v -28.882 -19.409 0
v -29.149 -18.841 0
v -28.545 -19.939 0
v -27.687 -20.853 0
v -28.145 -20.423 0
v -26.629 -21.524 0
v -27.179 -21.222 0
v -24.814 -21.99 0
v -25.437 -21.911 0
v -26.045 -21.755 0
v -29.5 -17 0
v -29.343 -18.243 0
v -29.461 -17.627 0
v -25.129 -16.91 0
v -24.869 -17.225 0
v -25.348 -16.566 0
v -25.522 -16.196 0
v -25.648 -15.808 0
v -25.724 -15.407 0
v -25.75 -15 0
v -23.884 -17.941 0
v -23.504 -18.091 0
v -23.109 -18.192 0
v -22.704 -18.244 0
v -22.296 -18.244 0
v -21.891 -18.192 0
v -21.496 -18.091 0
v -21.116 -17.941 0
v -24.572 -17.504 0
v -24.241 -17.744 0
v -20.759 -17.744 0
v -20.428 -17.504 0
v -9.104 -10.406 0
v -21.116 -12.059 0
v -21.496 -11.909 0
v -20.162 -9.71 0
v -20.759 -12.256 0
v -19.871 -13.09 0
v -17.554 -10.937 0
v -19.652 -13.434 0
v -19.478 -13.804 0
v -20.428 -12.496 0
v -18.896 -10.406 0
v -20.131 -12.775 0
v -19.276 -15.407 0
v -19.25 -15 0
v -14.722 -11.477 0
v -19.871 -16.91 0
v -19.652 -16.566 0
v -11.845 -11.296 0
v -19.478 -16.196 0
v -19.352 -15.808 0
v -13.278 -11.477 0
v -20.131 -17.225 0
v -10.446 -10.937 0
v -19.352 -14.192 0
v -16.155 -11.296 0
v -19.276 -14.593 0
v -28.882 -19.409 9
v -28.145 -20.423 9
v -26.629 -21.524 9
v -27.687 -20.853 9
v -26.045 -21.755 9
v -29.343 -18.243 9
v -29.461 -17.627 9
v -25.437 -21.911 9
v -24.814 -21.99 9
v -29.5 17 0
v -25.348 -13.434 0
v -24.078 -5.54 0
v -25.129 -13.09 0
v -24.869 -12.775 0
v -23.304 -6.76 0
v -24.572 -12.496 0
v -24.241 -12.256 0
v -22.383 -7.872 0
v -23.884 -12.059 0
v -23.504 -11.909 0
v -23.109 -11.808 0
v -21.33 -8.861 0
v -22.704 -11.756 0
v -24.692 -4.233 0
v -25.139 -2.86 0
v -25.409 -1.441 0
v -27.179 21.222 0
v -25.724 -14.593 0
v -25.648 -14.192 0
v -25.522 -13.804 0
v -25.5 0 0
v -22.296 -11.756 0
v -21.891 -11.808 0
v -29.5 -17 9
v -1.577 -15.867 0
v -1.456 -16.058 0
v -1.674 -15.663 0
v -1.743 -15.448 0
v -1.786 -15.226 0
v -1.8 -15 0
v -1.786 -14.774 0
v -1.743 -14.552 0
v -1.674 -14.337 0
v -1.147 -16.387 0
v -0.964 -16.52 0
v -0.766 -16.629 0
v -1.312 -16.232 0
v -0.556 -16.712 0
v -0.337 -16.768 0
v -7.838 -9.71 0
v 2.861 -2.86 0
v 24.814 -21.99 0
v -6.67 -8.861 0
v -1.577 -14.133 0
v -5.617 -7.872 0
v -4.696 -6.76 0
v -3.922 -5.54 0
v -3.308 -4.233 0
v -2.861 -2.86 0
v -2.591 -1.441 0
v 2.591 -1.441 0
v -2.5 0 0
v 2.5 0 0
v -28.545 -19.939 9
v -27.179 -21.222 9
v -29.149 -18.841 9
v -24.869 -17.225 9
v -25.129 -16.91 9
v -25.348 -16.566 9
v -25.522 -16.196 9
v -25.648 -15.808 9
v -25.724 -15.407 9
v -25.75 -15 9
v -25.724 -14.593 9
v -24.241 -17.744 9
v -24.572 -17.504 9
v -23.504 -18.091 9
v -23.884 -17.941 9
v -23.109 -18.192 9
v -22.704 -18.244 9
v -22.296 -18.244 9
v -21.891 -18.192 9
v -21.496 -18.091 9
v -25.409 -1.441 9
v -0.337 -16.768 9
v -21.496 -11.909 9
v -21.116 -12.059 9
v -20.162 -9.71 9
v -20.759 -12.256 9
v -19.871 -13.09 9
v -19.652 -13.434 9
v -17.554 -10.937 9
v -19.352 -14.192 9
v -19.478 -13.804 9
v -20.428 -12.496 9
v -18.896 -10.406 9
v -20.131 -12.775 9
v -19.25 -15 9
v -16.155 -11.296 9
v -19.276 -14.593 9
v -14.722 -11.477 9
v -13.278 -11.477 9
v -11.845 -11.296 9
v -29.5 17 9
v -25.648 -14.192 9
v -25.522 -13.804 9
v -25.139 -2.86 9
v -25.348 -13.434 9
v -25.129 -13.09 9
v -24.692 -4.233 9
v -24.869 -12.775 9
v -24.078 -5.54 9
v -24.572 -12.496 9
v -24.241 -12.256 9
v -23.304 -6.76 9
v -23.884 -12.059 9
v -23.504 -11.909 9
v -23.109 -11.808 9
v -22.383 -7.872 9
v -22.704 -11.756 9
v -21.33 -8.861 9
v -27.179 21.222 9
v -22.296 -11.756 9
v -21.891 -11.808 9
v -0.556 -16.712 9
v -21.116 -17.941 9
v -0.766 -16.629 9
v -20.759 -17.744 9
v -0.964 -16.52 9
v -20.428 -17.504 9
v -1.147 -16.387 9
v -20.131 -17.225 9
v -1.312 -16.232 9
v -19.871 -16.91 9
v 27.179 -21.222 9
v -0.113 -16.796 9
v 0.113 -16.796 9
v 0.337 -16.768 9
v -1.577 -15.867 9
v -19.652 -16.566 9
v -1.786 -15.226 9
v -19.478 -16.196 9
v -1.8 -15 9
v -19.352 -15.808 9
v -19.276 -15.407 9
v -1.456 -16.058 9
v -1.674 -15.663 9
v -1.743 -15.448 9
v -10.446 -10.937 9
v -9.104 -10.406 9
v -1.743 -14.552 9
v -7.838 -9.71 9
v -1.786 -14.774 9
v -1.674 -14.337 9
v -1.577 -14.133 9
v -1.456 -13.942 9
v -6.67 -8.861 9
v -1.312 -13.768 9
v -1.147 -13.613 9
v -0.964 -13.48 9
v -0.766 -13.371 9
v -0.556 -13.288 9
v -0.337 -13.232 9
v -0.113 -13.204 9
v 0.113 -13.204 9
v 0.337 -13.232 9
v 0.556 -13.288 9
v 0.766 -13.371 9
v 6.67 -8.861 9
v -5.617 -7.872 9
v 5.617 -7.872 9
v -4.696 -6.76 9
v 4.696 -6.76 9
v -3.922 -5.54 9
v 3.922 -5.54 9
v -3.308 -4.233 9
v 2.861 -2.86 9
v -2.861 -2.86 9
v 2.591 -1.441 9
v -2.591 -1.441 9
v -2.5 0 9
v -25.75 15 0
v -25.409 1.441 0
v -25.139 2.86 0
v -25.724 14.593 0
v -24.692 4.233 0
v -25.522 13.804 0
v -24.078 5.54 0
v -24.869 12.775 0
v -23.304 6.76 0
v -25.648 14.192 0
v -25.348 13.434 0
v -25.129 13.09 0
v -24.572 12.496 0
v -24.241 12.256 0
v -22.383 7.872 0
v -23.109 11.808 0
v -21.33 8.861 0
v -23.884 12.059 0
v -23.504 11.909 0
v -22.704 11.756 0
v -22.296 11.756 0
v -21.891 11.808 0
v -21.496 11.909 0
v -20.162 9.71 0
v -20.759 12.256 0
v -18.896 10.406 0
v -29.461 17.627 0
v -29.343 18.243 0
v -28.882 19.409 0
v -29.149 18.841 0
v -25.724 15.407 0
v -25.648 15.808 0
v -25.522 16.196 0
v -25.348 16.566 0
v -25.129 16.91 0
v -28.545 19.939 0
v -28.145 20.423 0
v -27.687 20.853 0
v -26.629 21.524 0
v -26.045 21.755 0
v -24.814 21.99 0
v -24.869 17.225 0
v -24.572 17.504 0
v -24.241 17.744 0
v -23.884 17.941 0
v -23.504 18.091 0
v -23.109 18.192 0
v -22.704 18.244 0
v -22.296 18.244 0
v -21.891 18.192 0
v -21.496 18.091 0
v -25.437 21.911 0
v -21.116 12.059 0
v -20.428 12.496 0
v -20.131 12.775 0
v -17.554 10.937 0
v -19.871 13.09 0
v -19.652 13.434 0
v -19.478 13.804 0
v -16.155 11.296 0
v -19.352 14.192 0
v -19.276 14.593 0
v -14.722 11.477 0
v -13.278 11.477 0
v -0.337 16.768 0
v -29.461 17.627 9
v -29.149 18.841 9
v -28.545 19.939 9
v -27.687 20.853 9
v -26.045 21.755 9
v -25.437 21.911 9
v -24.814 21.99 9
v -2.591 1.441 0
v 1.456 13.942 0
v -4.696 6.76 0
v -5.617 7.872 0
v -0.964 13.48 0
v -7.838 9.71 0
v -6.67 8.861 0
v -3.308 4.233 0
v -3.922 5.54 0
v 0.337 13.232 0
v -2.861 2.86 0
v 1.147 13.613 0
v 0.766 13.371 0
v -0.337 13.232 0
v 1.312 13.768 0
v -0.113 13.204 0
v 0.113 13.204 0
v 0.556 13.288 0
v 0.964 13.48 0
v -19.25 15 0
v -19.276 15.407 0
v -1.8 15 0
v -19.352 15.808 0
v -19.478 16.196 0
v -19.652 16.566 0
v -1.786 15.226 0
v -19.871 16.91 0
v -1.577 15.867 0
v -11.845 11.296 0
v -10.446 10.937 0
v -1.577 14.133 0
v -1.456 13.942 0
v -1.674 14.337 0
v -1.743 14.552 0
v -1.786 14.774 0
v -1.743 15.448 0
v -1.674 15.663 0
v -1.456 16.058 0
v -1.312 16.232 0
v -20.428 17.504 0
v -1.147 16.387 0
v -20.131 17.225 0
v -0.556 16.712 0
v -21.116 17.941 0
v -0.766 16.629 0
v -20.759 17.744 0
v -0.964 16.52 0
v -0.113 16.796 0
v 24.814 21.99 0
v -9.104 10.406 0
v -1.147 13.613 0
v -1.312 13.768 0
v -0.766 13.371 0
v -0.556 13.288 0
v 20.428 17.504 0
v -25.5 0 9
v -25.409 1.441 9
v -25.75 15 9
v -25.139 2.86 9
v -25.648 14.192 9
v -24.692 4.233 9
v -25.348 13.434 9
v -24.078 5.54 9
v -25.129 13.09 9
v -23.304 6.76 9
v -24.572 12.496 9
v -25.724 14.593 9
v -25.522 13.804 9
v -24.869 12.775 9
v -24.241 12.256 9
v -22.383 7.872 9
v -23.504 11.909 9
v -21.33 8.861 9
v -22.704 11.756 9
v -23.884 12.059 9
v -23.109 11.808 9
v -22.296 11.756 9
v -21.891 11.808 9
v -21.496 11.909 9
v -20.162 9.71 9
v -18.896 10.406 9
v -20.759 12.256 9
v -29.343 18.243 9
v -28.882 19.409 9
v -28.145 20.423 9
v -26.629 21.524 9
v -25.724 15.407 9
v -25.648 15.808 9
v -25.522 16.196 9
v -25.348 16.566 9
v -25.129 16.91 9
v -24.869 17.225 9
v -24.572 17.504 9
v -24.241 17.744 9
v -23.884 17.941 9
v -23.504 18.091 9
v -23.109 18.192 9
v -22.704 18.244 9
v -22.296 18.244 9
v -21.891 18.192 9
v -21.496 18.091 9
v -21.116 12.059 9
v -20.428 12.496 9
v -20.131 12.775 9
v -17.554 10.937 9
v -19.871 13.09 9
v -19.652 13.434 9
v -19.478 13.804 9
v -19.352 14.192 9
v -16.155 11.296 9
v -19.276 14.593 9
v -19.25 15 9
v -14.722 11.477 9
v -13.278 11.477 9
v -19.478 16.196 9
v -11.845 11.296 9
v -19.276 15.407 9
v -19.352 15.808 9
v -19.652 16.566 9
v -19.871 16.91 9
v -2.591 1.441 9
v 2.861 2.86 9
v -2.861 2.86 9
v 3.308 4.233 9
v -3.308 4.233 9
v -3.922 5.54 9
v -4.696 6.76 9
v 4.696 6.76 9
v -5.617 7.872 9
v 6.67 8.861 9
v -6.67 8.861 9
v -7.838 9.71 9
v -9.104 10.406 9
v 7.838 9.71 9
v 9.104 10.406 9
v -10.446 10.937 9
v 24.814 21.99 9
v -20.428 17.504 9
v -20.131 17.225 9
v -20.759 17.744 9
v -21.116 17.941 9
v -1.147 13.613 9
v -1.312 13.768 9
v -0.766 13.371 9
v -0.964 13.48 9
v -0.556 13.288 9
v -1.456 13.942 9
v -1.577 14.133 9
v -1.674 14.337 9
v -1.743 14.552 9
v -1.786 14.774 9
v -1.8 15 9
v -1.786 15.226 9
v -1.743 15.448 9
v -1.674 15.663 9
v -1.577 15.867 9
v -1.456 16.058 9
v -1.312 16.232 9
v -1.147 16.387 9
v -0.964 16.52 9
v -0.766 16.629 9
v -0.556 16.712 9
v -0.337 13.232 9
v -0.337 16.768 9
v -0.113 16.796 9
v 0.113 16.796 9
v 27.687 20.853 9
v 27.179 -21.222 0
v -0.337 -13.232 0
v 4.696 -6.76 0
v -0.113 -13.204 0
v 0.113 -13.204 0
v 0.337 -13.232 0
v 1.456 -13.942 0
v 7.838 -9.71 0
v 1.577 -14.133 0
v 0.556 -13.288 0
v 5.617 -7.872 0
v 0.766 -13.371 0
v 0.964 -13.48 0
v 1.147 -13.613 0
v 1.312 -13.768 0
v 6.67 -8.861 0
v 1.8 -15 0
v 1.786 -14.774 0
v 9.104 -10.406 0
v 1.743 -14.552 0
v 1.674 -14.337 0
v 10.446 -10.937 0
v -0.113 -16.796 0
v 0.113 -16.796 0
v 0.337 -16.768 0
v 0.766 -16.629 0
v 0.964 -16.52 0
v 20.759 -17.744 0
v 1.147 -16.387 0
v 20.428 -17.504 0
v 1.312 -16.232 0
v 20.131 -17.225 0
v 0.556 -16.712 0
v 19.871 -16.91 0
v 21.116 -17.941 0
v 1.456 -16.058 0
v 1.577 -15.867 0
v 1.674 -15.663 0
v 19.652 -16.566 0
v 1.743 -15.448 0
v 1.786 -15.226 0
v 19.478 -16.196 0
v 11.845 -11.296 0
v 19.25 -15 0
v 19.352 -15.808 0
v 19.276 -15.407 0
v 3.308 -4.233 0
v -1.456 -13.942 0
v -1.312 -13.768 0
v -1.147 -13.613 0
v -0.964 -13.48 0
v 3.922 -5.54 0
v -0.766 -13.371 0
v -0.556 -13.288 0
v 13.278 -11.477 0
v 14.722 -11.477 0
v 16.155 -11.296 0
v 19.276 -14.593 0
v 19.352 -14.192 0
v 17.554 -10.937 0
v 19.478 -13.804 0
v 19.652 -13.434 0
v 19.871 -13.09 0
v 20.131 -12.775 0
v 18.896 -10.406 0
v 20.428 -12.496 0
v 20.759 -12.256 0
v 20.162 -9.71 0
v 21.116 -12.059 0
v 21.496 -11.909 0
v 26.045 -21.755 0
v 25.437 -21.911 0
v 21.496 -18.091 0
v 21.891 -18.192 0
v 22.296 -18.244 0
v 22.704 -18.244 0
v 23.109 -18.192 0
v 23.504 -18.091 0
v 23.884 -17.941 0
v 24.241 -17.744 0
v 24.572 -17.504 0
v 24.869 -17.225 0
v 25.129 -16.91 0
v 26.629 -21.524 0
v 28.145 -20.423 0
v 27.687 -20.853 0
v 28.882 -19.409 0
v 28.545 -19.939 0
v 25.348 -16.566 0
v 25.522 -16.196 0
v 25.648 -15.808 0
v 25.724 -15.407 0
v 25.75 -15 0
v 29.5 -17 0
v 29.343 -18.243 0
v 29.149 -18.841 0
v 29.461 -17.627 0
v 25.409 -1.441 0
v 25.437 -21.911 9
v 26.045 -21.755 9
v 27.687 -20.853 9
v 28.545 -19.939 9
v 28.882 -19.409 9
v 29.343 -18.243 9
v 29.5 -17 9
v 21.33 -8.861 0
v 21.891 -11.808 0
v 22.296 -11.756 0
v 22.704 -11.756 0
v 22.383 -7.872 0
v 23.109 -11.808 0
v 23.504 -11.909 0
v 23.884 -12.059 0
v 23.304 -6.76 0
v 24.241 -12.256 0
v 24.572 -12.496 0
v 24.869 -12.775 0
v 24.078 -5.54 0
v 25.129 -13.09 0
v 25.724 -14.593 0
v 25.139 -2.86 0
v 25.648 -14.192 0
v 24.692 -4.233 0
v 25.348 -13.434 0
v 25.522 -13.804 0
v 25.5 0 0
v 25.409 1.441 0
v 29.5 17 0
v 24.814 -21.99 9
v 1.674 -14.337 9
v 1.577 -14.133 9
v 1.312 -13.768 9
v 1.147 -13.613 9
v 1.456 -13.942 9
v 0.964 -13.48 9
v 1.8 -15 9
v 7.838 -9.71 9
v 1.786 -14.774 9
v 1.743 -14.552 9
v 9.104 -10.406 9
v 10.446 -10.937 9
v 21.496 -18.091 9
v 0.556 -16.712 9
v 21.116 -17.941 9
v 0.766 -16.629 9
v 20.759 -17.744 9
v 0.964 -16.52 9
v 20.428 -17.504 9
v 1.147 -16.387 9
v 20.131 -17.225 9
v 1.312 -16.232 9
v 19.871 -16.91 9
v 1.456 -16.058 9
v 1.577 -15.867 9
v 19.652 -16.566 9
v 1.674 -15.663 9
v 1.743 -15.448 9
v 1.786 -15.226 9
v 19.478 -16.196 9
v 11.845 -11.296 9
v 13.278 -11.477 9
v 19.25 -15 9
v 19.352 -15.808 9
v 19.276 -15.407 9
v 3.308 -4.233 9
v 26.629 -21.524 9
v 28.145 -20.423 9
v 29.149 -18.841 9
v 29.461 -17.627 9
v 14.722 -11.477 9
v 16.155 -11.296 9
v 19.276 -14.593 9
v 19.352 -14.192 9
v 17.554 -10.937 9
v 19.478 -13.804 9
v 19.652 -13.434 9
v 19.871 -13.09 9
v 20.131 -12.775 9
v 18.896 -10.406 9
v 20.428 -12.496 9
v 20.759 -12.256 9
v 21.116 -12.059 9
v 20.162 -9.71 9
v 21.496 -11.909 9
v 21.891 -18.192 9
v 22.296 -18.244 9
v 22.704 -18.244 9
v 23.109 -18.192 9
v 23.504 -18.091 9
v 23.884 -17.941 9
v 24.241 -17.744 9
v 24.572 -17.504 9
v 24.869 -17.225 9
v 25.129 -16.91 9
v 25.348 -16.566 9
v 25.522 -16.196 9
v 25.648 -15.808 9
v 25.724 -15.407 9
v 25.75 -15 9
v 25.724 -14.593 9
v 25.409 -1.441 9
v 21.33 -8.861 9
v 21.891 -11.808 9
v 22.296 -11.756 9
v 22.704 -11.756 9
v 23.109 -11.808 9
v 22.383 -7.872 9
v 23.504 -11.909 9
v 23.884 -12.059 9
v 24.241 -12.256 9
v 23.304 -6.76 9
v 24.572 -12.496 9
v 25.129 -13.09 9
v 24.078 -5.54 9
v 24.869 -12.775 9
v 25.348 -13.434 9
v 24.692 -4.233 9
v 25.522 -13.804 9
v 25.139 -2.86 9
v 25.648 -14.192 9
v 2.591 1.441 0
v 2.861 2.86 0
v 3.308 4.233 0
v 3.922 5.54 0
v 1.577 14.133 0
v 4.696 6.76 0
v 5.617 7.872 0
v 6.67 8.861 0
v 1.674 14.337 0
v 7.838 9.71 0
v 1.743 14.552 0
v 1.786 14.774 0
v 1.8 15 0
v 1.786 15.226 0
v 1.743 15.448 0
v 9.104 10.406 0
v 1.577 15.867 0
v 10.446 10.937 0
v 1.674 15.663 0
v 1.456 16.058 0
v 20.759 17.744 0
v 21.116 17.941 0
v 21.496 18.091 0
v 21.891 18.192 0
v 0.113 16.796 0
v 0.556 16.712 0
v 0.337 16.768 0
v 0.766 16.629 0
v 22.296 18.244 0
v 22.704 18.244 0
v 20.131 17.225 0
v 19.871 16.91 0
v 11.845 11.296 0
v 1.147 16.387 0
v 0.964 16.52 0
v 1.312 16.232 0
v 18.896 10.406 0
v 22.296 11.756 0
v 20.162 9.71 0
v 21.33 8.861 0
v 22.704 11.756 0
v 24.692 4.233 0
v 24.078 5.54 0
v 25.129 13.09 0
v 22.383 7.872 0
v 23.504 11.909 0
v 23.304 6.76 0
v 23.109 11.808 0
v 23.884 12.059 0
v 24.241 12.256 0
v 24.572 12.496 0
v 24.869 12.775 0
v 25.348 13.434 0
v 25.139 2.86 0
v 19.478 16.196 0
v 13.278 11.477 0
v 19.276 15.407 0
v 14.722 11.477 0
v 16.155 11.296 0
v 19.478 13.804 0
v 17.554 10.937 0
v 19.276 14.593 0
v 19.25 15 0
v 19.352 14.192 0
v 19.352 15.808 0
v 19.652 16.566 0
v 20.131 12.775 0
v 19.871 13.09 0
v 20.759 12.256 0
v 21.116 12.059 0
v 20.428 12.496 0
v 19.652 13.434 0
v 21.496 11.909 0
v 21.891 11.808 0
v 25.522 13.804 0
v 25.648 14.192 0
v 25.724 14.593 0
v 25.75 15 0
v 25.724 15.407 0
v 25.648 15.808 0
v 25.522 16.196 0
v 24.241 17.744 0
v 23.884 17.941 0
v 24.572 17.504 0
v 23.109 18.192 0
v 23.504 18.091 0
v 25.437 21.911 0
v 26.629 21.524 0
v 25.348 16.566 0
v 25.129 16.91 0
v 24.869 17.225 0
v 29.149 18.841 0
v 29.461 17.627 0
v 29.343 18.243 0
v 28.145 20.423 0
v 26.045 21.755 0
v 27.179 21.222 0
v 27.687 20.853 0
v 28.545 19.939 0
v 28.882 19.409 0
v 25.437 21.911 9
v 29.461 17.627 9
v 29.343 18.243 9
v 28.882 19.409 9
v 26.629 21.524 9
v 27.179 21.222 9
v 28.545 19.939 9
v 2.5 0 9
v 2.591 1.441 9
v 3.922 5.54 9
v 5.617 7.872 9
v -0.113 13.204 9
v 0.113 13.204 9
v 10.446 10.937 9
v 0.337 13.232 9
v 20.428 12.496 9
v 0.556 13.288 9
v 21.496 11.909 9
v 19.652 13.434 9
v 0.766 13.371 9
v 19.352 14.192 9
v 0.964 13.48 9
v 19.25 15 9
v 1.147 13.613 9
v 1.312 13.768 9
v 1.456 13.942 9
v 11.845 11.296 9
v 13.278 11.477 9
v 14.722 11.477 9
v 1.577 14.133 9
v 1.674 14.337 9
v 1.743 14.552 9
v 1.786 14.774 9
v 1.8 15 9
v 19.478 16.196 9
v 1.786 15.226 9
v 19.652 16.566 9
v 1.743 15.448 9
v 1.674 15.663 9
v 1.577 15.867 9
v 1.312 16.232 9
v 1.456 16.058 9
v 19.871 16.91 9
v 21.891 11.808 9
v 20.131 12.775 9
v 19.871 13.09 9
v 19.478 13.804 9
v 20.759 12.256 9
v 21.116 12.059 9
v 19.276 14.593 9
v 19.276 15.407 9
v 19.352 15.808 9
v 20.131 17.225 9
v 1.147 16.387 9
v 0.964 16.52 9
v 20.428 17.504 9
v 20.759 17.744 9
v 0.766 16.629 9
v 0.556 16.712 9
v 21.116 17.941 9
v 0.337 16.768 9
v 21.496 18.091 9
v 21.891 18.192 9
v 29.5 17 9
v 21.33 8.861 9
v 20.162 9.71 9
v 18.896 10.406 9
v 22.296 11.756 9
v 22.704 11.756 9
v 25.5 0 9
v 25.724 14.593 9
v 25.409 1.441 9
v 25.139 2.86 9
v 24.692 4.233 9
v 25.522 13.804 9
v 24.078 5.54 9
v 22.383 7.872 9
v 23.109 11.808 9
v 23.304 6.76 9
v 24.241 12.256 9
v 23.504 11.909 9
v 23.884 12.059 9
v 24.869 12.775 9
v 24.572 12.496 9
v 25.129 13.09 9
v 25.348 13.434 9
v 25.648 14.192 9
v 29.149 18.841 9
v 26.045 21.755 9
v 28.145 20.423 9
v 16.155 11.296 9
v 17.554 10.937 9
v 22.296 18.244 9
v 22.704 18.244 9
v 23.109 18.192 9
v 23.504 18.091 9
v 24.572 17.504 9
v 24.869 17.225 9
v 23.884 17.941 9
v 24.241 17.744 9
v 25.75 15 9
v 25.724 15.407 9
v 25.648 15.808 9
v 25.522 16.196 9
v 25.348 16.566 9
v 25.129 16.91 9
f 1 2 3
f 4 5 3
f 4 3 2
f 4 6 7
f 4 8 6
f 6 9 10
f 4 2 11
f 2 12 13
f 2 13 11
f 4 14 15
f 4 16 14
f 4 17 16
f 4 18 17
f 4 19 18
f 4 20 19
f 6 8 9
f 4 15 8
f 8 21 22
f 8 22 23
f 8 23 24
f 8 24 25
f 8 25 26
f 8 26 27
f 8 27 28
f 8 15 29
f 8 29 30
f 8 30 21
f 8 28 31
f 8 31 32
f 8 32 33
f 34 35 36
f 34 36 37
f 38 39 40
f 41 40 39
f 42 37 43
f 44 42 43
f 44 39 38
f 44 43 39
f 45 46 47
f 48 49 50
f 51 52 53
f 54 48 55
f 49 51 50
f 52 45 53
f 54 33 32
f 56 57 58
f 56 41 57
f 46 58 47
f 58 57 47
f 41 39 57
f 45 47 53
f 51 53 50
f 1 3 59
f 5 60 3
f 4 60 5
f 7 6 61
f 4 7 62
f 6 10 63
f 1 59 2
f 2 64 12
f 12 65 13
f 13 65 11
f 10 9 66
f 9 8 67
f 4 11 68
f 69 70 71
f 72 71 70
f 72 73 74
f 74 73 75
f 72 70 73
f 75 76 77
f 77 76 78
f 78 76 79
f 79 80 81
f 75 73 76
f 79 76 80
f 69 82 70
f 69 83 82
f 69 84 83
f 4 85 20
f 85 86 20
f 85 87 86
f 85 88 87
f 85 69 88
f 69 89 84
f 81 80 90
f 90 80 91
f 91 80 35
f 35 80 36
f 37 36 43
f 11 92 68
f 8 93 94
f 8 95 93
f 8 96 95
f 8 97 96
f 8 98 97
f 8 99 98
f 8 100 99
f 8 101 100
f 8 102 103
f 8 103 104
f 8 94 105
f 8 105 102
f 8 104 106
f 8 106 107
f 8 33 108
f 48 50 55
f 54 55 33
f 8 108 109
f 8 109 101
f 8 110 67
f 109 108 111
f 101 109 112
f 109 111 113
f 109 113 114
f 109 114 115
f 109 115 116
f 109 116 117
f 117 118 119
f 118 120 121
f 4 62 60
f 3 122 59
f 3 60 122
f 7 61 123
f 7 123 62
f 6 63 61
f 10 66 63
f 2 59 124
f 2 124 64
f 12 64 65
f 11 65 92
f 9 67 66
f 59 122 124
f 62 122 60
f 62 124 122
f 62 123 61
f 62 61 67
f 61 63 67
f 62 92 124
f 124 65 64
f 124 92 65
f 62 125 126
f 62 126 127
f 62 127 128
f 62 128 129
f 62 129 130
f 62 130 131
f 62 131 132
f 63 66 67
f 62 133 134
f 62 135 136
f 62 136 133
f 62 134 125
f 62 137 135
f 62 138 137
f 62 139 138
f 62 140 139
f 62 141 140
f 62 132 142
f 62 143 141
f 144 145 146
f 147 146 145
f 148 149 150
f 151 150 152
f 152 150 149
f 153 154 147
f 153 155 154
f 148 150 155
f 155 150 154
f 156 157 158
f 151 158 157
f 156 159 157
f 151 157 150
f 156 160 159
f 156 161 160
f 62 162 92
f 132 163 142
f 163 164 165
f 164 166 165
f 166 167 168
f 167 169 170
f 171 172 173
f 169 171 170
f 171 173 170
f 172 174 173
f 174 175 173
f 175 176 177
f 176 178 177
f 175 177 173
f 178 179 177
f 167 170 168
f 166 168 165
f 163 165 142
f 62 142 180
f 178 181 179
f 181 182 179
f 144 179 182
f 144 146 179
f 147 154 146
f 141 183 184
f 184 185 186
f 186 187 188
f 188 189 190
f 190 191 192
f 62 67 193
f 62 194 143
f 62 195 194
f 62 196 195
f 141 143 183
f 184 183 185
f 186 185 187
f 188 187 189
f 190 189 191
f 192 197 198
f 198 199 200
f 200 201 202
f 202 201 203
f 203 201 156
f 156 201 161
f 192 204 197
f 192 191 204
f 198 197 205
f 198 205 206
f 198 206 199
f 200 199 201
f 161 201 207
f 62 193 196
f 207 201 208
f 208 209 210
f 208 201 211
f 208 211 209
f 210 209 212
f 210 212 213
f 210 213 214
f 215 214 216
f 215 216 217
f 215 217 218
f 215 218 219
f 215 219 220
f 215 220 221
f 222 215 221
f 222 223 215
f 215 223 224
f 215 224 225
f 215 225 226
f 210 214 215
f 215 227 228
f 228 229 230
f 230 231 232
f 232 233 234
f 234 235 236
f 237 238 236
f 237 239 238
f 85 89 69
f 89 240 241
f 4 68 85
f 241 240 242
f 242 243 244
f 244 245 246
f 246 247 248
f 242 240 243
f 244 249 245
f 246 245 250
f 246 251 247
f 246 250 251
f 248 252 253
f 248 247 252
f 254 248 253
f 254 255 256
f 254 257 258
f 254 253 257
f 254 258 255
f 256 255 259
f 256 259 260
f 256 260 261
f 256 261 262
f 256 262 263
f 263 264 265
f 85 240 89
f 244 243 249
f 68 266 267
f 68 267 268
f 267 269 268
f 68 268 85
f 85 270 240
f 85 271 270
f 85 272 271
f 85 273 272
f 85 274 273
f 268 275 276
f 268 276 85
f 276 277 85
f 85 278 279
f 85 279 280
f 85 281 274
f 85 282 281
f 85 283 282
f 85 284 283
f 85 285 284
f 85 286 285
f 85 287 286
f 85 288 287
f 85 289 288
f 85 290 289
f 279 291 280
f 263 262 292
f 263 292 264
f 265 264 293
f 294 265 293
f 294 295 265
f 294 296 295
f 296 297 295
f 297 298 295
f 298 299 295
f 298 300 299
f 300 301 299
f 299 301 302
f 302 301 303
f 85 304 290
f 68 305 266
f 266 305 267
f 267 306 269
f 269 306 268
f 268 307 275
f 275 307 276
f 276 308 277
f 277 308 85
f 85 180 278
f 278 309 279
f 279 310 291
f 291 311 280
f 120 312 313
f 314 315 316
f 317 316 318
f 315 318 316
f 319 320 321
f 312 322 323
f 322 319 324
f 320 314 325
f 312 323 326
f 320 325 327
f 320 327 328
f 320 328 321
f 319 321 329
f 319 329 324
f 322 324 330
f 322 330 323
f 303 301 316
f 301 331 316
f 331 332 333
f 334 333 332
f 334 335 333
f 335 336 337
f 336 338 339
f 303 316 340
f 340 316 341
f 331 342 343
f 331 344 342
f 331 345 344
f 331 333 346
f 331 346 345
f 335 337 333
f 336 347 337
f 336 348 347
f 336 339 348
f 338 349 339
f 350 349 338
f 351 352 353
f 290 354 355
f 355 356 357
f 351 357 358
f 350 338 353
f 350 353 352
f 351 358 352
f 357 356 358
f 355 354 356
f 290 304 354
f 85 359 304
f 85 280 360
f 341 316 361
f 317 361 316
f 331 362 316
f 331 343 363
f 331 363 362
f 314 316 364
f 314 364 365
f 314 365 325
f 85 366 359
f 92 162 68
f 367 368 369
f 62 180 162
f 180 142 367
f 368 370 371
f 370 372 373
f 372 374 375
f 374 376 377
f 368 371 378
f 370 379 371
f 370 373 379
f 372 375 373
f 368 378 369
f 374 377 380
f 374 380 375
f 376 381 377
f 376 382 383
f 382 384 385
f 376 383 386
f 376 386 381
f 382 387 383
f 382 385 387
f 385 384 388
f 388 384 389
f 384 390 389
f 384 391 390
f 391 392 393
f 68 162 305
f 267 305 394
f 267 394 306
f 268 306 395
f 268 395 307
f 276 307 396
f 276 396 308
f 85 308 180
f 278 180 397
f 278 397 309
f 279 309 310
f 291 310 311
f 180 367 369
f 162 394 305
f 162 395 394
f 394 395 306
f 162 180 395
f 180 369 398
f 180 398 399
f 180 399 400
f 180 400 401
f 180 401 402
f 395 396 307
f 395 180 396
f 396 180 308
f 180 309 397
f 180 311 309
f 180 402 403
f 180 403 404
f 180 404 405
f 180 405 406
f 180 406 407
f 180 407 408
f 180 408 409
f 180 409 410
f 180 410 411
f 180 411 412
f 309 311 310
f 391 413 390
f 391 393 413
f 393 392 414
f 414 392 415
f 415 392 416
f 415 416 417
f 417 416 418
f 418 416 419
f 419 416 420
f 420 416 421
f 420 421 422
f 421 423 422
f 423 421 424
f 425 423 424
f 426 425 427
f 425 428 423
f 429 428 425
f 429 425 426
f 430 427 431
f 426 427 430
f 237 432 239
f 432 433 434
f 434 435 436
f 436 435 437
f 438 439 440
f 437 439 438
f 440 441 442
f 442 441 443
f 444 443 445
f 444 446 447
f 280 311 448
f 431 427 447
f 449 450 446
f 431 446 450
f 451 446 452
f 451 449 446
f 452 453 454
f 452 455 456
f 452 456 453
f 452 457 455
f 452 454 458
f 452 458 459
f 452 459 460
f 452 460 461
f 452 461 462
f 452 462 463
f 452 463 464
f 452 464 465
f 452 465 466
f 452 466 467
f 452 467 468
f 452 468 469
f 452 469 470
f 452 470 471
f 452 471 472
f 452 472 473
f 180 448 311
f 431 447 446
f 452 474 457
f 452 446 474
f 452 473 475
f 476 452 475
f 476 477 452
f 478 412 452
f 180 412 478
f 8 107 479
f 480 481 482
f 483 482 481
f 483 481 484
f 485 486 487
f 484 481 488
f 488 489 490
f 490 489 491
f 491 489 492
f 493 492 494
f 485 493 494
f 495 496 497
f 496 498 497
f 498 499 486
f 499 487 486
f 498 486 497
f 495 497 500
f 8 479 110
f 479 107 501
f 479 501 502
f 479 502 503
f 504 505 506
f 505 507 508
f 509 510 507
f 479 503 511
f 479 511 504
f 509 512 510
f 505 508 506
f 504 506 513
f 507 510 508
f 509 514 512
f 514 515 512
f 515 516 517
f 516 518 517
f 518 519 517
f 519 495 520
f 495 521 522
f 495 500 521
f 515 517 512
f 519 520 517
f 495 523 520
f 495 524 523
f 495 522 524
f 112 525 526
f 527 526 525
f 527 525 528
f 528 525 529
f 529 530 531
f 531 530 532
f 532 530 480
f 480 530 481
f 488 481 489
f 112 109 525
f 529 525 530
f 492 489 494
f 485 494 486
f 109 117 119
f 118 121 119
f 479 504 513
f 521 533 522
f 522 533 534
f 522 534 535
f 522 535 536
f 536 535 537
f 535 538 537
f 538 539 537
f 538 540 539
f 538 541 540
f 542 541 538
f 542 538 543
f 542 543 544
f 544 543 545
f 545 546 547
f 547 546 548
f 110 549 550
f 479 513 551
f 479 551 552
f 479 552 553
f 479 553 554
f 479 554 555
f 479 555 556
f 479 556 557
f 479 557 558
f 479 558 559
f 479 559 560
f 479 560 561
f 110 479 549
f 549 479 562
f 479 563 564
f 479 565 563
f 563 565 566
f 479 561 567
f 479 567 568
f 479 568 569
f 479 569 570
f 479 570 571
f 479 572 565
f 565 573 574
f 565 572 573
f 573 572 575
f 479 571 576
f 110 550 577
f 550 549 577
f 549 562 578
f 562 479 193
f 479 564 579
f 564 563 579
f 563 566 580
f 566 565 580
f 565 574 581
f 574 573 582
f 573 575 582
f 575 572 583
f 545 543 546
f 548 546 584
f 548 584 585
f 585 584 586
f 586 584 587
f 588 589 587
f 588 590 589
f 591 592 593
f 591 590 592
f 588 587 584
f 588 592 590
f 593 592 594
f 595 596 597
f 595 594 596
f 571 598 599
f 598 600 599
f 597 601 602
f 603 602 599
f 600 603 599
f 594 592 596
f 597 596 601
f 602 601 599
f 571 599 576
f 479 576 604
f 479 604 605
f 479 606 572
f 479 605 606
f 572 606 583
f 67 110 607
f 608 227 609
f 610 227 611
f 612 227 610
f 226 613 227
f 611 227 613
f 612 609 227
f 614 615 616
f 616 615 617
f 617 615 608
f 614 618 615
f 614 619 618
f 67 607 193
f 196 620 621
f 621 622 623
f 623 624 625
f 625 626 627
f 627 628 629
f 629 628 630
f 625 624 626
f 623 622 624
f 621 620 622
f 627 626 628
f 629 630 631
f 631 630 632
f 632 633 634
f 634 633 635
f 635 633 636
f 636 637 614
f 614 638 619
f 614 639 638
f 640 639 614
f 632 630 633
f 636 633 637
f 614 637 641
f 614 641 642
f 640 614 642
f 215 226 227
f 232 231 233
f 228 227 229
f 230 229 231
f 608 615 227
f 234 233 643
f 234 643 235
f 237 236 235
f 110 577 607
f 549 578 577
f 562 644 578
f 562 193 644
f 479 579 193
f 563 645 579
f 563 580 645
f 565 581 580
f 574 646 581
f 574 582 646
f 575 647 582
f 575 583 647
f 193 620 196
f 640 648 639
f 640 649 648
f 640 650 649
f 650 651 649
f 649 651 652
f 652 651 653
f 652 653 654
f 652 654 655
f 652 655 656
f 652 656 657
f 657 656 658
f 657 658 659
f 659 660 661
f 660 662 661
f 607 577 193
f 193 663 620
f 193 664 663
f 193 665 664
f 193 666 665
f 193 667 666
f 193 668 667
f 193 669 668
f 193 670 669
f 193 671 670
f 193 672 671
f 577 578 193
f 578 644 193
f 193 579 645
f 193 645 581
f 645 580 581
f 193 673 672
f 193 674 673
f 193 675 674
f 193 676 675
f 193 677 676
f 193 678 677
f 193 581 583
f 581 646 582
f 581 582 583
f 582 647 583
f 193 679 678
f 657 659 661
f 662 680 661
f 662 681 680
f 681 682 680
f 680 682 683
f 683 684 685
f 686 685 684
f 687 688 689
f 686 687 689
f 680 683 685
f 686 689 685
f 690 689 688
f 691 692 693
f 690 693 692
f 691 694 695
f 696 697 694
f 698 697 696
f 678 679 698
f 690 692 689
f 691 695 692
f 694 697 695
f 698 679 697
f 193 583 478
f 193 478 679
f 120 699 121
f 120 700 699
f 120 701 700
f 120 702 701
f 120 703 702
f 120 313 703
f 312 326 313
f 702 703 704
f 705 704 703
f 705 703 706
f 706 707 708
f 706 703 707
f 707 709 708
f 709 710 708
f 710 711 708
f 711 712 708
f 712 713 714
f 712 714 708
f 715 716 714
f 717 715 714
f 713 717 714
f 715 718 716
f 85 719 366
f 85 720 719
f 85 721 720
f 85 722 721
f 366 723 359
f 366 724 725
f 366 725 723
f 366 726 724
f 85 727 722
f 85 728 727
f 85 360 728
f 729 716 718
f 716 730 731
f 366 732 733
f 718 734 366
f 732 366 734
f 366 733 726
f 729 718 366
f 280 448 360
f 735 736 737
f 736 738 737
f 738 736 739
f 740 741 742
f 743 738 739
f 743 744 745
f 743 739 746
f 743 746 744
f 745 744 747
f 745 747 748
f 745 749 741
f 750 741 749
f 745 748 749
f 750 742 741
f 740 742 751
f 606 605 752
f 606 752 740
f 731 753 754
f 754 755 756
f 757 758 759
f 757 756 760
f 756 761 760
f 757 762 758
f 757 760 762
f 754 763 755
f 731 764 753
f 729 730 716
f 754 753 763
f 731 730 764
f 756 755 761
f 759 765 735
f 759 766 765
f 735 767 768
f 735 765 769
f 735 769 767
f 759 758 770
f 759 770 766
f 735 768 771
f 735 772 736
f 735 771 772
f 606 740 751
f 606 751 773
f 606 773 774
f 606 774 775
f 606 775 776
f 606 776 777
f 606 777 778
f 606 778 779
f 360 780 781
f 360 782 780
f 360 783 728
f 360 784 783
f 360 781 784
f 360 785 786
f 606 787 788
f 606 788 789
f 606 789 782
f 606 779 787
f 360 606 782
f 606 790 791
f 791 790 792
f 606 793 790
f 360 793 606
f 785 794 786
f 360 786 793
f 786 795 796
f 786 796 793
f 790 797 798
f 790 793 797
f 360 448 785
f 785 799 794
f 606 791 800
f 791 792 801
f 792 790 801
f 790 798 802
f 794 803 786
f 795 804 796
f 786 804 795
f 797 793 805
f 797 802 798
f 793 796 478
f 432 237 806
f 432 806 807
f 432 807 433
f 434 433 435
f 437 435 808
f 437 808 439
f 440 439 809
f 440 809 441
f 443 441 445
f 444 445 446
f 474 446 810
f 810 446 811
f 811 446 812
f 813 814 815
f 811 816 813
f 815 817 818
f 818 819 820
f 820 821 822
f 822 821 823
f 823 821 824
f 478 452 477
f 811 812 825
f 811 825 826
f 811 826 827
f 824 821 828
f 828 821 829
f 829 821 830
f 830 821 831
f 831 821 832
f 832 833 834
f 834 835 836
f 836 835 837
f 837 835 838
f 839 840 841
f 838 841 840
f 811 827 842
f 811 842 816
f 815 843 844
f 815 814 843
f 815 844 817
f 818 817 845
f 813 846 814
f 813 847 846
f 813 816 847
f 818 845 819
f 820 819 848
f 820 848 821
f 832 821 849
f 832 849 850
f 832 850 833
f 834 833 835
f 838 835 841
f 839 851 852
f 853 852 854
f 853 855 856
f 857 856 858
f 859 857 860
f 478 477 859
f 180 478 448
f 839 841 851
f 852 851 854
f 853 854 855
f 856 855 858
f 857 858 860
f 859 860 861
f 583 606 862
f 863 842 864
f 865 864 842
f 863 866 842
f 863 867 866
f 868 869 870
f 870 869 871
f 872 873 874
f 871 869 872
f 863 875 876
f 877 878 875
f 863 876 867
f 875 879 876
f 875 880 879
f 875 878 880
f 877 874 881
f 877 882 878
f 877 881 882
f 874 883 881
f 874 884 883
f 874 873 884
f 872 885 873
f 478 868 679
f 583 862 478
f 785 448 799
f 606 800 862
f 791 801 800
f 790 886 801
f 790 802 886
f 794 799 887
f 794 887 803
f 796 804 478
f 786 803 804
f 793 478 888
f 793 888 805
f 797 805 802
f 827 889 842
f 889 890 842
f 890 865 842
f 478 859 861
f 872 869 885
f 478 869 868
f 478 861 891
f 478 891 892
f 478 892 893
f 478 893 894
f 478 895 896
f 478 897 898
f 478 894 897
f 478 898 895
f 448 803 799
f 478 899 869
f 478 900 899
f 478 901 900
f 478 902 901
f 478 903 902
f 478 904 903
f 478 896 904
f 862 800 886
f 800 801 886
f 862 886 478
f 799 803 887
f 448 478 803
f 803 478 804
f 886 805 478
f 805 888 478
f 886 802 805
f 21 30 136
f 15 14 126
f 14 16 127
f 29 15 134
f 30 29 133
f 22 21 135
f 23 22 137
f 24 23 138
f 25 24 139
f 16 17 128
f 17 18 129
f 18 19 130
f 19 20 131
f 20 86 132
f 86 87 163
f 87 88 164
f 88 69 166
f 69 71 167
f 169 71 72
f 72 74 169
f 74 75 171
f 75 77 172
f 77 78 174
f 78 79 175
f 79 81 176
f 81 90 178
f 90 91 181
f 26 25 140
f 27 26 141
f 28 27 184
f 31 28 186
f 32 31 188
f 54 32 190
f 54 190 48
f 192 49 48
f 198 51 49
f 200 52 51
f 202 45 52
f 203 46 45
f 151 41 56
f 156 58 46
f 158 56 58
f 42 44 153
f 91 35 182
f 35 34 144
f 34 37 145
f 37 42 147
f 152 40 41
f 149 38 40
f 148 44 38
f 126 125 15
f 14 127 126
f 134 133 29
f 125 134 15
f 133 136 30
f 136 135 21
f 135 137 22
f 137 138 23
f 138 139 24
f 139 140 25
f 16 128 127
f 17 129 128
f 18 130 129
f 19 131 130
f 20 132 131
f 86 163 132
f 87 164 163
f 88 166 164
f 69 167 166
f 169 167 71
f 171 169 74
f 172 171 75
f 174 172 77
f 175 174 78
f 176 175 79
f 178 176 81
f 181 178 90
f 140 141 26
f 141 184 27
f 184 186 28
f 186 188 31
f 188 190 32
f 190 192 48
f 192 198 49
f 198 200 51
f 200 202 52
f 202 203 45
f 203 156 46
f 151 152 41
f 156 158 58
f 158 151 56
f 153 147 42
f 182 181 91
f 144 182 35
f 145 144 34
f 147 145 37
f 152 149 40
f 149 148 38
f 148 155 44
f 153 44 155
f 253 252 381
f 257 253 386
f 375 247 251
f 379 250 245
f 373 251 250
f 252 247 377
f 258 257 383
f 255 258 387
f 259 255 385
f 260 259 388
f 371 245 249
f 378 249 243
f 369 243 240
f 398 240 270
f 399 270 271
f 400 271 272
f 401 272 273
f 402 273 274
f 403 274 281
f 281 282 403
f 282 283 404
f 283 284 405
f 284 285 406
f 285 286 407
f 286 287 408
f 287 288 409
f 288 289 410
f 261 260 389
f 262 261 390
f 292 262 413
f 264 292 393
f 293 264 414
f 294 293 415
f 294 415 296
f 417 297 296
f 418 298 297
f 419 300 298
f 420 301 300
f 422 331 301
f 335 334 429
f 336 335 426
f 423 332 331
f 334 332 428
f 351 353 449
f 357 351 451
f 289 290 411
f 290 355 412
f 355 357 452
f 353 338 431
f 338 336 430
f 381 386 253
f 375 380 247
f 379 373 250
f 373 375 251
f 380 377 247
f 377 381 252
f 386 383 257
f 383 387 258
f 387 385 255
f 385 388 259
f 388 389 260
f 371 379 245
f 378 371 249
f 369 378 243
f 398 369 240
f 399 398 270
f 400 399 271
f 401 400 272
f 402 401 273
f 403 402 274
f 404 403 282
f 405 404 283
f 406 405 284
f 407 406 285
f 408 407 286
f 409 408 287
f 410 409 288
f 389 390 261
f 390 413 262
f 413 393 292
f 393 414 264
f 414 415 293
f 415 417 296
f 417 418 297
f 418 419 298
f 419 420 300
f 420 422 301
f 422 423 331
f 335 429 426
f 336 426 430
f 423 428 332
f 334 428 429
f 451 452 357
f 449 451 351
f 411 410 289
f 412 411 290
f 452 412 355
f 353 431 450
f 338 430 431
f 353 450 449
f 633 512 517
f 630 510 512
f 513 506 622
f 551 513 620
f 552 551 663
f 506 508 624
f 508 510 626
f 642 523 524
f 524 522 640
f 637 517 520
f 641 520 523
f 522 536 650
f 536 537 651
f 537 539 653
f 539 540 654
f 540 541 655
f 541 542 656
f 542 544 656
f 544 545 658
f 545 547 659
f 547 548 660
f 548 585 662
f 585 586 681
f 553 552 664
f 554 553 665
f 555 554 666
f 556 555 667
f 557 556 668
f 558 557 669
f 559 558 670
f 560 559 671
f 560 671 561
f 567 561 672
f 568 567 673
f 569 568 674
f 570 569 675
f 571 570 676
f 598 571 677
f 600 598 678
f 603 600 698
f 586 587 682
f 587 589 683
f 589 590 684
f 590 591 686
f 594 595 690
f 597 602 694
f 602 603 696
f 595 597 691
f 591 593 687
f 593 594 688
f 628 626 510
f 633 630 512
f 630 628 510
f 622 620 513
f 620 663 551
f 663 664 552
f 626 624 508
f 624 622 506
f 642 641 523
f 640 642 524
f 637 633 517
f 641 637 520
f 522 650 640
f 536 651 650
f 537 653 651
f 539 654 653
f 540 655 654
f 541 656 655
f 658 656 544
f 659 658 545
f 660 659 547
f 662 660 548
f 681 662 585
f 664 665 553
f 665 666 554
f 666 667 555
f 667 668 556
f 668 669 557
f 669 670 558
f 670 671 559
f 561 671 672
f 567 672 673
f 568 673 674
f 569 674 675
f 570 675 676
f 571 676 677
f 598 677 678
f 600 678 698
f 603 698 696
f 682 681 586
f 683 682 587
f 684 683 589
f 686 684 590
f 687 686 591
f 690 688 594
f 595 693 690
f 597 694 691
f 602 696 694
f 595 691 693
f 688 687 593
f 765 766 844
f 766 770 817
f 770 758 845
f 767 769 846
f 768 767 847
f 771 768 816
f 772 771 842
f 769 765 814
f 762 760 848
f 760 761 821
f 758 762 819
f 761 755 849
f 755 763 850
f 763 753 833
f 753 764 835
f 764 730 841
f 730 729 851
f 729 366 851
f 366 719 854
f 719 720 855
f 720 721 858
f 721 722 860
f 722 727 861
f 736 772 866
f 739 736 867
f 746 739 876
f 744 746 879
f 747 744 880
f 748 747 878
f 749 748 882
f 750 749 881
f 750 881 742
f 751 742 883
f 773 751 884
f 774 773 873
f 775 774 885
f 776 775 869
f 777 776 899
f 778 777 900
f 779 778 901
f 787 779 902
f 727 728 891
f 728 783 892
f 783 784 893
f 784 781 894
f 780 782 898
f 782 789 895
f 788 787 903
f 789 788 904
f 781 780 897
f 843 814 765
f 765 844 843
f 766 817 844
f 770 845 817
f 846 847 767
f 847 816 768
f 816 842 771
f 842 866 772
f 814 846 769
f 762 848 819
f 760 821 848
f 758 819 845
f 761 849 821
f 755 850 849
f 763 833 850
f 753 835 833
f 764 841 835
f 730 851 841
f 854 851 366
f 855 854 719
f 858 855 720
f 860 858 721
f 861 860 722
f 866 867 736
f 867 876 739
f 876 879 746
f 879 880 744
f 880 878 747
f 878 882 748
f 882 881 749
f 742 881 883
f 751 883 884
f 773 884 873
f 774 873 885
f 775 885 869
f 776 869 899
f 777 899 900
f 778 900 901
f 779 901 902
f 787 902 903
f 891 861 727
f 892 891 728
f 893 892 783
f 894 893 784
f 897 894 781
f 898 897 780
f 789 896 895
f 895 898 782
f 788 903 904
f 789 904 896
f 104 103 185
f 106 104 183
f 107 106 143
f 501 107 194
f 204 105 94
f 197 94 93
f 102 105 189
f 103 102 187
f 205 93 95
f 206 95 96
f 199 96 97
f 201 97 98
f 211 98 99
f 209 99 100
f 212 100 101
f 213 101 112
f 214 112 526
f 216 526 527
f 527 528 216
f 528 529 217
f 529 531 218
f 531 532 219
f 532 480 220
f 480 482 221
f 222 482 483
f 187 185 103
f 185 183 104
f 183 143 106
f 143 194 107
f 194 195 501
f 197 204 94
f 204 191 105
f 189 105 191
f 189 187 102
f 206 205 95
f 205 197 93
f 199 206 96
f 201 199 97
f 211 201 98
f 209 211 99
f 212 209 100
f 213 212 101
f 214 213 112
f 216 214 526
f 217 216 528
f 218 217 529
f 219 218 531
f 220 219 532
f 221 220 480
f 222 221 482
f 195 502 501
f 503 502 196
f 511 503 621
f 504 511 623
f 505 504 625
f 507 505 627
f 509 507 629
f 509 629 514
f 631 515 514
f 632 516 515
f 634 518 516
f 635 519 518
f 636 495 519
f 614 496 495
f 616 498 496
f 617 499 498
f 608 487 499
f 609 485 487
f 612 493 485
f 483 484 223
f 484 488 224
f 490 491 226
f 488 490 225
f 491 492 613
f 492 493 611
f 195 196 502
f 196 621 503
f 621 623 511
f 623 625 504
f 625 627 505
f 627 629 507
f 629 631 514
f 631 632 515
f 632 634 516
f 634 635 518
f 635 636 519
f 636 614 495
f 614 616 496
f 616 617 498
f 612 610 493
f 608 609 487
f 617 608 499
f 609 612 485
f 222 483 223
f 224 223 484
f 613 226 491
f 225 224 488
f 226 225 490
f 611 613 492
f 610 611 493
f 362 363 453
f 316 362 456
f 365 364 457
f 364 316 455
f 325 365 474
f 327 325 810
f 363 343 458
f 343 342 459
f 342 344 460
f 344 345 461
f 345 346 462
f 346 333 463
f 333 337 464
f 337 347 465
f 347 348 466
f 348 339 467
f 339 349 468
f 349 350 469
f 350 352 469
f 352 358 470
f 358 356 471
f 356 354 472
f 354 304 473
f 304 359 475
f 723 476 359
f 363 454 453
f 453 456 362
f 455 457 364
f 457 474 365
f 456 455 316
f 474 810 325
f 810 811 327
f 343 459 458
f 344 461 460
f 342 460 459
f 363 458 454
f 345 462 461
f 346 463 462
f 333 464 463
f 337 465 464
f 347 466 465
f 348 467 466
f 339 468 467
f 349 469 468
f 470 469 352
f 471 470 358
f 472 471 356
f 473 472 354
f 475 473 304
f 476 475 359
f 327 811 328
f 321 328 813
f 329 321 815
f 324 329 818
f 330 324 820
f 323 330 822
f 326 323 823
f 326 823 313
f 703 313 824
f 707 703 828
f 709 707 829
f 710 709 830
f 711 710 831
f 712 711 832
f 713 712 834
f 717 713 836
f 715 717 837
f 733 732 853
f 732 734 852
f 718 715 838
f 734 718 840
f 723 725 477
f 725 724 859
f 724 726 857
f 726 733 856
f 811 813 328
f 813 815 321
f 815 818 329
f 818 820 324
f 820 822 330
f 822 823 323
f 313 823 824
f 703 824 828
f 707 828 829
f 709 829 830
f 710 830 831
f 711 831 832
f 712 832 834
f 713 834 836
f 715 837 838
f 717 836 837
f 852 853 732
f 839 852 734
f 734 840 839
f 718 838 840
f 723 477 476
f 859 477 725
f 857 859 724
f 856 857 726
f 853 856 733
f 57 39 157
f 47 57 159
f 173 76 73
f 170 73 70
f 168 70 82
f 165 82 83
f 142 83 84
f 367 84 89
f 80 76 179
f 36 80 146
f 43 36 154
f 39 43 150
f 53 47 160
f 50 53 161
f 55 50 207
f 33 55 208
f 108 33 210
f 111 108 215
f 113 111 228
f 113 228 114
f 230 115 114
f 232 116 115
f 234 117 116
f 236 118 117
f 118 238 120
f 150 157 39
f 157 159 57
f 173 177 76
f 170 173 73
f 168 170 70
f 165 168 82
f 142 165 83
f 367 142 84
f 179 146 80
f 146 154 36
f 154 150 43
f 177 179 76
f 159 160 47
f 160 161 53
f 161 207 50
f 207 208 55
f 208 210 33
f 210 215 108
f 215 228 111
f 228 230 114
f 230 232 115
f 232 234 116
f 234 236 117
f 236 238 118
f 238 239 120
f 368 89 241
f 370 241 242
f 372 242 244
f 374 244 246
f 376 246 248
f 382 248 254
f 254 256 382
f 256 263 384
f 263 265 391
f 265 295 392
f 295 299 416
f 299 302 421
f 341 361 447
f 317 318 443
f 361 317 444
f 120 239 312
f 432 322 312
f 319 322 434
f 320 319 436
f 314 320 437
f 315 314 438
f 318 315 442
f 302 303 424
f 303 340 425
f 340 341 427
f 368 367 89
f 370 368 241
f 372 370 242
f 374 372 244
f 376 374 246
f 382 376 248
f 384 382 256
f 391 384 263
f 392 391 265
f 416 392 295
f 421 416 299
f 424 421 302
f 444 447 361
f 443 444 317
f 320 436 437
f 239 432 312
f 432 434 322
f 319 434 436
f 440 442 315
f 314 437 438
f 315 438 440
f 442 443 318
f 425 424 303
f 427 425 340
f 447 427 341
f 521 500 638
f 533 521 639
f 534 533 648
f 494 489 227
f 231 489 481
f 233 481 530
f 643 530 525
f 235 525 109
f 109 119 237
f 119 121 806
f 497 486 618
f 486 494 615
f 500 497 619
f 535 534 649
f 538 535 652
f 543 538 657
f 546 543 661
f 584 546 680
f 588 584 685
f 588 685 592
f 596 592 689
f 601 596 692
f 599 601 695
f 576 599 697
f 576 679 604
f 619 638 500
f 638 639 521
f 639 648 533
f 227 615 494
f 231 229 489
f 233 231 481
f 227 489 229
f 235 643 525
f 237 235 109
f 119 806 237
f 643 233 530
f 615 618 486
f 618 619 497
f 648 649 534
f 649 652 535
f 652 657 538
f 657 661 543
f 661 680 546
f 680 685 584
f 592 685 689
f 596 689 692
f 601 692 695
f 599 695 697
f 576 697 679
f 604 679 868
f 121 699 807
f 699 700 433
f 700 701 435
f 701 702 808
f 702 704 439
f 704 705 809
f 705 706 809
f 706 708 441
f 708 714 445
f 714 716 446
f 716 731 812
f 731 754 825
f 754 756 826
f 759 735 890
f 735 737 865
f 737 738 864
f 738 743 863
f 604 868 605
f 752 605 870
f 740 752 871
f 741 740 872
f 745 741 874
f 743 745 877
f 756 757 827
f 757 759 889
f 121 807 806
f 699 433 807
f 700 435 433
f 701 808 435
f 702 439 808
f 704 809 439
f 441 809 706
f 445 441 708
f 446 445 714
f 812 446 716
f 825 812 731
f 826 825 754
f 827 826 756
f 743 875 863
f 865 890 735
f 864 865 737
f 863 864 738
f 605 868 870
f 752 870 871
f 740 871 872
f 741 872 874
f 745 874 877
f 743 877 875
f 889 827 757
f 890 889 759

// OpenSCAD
$fn = 50;

difference() {
	union() {
		hull() {
			translate(v = [-24.5, 17.0, 0]) {
				cylinder(h = 9, r = 5);
			}
			translate(v = [24.5, 17.0, 0]) {
				cylinder(h = 9, r = 5);
			}
			translate(v = [-24.5, -17.0, 0]) {
				cylinder(h = 9, r = 5);
			}
			translate(v = [24.5, -17.0, 0]) {
				cylinder(h = 9, r = 5);
			}
		}
	}
	union() {
		translate(v = [-22.5, -15.0, 0]) {
			cylinder(h = 9, r = 3.25);
		}
		translate(v = [-22.5, 15.0, 0]) {
			cylinder(h = 9, r = 3.25);
		}
		translate(v = [22.5, -15.0, 0]) {
			cylinder(h = 9, r = 3.25);
		}
		translate(v = [22.5, 15.0, 0]) {
			cylinder(h = 9, r = 3.25);
		}
		translate(v = [0.0, -15.0, 0]) {
			cylinder(h = 9, r = 1.8);
		}
		translate(v = [0.0, 15.0, 0]) {
			cylinder(h = 9, r = 1.8);
		}
		translate(v = [-14.0, 0, 0.0]) {
			cylinder(h = 9, r = 11.5);
		}
		translate(v = [14.0, 0, 0.0]) {
			cylinder(h = 9, r = 11.5);
		}
	}
}
